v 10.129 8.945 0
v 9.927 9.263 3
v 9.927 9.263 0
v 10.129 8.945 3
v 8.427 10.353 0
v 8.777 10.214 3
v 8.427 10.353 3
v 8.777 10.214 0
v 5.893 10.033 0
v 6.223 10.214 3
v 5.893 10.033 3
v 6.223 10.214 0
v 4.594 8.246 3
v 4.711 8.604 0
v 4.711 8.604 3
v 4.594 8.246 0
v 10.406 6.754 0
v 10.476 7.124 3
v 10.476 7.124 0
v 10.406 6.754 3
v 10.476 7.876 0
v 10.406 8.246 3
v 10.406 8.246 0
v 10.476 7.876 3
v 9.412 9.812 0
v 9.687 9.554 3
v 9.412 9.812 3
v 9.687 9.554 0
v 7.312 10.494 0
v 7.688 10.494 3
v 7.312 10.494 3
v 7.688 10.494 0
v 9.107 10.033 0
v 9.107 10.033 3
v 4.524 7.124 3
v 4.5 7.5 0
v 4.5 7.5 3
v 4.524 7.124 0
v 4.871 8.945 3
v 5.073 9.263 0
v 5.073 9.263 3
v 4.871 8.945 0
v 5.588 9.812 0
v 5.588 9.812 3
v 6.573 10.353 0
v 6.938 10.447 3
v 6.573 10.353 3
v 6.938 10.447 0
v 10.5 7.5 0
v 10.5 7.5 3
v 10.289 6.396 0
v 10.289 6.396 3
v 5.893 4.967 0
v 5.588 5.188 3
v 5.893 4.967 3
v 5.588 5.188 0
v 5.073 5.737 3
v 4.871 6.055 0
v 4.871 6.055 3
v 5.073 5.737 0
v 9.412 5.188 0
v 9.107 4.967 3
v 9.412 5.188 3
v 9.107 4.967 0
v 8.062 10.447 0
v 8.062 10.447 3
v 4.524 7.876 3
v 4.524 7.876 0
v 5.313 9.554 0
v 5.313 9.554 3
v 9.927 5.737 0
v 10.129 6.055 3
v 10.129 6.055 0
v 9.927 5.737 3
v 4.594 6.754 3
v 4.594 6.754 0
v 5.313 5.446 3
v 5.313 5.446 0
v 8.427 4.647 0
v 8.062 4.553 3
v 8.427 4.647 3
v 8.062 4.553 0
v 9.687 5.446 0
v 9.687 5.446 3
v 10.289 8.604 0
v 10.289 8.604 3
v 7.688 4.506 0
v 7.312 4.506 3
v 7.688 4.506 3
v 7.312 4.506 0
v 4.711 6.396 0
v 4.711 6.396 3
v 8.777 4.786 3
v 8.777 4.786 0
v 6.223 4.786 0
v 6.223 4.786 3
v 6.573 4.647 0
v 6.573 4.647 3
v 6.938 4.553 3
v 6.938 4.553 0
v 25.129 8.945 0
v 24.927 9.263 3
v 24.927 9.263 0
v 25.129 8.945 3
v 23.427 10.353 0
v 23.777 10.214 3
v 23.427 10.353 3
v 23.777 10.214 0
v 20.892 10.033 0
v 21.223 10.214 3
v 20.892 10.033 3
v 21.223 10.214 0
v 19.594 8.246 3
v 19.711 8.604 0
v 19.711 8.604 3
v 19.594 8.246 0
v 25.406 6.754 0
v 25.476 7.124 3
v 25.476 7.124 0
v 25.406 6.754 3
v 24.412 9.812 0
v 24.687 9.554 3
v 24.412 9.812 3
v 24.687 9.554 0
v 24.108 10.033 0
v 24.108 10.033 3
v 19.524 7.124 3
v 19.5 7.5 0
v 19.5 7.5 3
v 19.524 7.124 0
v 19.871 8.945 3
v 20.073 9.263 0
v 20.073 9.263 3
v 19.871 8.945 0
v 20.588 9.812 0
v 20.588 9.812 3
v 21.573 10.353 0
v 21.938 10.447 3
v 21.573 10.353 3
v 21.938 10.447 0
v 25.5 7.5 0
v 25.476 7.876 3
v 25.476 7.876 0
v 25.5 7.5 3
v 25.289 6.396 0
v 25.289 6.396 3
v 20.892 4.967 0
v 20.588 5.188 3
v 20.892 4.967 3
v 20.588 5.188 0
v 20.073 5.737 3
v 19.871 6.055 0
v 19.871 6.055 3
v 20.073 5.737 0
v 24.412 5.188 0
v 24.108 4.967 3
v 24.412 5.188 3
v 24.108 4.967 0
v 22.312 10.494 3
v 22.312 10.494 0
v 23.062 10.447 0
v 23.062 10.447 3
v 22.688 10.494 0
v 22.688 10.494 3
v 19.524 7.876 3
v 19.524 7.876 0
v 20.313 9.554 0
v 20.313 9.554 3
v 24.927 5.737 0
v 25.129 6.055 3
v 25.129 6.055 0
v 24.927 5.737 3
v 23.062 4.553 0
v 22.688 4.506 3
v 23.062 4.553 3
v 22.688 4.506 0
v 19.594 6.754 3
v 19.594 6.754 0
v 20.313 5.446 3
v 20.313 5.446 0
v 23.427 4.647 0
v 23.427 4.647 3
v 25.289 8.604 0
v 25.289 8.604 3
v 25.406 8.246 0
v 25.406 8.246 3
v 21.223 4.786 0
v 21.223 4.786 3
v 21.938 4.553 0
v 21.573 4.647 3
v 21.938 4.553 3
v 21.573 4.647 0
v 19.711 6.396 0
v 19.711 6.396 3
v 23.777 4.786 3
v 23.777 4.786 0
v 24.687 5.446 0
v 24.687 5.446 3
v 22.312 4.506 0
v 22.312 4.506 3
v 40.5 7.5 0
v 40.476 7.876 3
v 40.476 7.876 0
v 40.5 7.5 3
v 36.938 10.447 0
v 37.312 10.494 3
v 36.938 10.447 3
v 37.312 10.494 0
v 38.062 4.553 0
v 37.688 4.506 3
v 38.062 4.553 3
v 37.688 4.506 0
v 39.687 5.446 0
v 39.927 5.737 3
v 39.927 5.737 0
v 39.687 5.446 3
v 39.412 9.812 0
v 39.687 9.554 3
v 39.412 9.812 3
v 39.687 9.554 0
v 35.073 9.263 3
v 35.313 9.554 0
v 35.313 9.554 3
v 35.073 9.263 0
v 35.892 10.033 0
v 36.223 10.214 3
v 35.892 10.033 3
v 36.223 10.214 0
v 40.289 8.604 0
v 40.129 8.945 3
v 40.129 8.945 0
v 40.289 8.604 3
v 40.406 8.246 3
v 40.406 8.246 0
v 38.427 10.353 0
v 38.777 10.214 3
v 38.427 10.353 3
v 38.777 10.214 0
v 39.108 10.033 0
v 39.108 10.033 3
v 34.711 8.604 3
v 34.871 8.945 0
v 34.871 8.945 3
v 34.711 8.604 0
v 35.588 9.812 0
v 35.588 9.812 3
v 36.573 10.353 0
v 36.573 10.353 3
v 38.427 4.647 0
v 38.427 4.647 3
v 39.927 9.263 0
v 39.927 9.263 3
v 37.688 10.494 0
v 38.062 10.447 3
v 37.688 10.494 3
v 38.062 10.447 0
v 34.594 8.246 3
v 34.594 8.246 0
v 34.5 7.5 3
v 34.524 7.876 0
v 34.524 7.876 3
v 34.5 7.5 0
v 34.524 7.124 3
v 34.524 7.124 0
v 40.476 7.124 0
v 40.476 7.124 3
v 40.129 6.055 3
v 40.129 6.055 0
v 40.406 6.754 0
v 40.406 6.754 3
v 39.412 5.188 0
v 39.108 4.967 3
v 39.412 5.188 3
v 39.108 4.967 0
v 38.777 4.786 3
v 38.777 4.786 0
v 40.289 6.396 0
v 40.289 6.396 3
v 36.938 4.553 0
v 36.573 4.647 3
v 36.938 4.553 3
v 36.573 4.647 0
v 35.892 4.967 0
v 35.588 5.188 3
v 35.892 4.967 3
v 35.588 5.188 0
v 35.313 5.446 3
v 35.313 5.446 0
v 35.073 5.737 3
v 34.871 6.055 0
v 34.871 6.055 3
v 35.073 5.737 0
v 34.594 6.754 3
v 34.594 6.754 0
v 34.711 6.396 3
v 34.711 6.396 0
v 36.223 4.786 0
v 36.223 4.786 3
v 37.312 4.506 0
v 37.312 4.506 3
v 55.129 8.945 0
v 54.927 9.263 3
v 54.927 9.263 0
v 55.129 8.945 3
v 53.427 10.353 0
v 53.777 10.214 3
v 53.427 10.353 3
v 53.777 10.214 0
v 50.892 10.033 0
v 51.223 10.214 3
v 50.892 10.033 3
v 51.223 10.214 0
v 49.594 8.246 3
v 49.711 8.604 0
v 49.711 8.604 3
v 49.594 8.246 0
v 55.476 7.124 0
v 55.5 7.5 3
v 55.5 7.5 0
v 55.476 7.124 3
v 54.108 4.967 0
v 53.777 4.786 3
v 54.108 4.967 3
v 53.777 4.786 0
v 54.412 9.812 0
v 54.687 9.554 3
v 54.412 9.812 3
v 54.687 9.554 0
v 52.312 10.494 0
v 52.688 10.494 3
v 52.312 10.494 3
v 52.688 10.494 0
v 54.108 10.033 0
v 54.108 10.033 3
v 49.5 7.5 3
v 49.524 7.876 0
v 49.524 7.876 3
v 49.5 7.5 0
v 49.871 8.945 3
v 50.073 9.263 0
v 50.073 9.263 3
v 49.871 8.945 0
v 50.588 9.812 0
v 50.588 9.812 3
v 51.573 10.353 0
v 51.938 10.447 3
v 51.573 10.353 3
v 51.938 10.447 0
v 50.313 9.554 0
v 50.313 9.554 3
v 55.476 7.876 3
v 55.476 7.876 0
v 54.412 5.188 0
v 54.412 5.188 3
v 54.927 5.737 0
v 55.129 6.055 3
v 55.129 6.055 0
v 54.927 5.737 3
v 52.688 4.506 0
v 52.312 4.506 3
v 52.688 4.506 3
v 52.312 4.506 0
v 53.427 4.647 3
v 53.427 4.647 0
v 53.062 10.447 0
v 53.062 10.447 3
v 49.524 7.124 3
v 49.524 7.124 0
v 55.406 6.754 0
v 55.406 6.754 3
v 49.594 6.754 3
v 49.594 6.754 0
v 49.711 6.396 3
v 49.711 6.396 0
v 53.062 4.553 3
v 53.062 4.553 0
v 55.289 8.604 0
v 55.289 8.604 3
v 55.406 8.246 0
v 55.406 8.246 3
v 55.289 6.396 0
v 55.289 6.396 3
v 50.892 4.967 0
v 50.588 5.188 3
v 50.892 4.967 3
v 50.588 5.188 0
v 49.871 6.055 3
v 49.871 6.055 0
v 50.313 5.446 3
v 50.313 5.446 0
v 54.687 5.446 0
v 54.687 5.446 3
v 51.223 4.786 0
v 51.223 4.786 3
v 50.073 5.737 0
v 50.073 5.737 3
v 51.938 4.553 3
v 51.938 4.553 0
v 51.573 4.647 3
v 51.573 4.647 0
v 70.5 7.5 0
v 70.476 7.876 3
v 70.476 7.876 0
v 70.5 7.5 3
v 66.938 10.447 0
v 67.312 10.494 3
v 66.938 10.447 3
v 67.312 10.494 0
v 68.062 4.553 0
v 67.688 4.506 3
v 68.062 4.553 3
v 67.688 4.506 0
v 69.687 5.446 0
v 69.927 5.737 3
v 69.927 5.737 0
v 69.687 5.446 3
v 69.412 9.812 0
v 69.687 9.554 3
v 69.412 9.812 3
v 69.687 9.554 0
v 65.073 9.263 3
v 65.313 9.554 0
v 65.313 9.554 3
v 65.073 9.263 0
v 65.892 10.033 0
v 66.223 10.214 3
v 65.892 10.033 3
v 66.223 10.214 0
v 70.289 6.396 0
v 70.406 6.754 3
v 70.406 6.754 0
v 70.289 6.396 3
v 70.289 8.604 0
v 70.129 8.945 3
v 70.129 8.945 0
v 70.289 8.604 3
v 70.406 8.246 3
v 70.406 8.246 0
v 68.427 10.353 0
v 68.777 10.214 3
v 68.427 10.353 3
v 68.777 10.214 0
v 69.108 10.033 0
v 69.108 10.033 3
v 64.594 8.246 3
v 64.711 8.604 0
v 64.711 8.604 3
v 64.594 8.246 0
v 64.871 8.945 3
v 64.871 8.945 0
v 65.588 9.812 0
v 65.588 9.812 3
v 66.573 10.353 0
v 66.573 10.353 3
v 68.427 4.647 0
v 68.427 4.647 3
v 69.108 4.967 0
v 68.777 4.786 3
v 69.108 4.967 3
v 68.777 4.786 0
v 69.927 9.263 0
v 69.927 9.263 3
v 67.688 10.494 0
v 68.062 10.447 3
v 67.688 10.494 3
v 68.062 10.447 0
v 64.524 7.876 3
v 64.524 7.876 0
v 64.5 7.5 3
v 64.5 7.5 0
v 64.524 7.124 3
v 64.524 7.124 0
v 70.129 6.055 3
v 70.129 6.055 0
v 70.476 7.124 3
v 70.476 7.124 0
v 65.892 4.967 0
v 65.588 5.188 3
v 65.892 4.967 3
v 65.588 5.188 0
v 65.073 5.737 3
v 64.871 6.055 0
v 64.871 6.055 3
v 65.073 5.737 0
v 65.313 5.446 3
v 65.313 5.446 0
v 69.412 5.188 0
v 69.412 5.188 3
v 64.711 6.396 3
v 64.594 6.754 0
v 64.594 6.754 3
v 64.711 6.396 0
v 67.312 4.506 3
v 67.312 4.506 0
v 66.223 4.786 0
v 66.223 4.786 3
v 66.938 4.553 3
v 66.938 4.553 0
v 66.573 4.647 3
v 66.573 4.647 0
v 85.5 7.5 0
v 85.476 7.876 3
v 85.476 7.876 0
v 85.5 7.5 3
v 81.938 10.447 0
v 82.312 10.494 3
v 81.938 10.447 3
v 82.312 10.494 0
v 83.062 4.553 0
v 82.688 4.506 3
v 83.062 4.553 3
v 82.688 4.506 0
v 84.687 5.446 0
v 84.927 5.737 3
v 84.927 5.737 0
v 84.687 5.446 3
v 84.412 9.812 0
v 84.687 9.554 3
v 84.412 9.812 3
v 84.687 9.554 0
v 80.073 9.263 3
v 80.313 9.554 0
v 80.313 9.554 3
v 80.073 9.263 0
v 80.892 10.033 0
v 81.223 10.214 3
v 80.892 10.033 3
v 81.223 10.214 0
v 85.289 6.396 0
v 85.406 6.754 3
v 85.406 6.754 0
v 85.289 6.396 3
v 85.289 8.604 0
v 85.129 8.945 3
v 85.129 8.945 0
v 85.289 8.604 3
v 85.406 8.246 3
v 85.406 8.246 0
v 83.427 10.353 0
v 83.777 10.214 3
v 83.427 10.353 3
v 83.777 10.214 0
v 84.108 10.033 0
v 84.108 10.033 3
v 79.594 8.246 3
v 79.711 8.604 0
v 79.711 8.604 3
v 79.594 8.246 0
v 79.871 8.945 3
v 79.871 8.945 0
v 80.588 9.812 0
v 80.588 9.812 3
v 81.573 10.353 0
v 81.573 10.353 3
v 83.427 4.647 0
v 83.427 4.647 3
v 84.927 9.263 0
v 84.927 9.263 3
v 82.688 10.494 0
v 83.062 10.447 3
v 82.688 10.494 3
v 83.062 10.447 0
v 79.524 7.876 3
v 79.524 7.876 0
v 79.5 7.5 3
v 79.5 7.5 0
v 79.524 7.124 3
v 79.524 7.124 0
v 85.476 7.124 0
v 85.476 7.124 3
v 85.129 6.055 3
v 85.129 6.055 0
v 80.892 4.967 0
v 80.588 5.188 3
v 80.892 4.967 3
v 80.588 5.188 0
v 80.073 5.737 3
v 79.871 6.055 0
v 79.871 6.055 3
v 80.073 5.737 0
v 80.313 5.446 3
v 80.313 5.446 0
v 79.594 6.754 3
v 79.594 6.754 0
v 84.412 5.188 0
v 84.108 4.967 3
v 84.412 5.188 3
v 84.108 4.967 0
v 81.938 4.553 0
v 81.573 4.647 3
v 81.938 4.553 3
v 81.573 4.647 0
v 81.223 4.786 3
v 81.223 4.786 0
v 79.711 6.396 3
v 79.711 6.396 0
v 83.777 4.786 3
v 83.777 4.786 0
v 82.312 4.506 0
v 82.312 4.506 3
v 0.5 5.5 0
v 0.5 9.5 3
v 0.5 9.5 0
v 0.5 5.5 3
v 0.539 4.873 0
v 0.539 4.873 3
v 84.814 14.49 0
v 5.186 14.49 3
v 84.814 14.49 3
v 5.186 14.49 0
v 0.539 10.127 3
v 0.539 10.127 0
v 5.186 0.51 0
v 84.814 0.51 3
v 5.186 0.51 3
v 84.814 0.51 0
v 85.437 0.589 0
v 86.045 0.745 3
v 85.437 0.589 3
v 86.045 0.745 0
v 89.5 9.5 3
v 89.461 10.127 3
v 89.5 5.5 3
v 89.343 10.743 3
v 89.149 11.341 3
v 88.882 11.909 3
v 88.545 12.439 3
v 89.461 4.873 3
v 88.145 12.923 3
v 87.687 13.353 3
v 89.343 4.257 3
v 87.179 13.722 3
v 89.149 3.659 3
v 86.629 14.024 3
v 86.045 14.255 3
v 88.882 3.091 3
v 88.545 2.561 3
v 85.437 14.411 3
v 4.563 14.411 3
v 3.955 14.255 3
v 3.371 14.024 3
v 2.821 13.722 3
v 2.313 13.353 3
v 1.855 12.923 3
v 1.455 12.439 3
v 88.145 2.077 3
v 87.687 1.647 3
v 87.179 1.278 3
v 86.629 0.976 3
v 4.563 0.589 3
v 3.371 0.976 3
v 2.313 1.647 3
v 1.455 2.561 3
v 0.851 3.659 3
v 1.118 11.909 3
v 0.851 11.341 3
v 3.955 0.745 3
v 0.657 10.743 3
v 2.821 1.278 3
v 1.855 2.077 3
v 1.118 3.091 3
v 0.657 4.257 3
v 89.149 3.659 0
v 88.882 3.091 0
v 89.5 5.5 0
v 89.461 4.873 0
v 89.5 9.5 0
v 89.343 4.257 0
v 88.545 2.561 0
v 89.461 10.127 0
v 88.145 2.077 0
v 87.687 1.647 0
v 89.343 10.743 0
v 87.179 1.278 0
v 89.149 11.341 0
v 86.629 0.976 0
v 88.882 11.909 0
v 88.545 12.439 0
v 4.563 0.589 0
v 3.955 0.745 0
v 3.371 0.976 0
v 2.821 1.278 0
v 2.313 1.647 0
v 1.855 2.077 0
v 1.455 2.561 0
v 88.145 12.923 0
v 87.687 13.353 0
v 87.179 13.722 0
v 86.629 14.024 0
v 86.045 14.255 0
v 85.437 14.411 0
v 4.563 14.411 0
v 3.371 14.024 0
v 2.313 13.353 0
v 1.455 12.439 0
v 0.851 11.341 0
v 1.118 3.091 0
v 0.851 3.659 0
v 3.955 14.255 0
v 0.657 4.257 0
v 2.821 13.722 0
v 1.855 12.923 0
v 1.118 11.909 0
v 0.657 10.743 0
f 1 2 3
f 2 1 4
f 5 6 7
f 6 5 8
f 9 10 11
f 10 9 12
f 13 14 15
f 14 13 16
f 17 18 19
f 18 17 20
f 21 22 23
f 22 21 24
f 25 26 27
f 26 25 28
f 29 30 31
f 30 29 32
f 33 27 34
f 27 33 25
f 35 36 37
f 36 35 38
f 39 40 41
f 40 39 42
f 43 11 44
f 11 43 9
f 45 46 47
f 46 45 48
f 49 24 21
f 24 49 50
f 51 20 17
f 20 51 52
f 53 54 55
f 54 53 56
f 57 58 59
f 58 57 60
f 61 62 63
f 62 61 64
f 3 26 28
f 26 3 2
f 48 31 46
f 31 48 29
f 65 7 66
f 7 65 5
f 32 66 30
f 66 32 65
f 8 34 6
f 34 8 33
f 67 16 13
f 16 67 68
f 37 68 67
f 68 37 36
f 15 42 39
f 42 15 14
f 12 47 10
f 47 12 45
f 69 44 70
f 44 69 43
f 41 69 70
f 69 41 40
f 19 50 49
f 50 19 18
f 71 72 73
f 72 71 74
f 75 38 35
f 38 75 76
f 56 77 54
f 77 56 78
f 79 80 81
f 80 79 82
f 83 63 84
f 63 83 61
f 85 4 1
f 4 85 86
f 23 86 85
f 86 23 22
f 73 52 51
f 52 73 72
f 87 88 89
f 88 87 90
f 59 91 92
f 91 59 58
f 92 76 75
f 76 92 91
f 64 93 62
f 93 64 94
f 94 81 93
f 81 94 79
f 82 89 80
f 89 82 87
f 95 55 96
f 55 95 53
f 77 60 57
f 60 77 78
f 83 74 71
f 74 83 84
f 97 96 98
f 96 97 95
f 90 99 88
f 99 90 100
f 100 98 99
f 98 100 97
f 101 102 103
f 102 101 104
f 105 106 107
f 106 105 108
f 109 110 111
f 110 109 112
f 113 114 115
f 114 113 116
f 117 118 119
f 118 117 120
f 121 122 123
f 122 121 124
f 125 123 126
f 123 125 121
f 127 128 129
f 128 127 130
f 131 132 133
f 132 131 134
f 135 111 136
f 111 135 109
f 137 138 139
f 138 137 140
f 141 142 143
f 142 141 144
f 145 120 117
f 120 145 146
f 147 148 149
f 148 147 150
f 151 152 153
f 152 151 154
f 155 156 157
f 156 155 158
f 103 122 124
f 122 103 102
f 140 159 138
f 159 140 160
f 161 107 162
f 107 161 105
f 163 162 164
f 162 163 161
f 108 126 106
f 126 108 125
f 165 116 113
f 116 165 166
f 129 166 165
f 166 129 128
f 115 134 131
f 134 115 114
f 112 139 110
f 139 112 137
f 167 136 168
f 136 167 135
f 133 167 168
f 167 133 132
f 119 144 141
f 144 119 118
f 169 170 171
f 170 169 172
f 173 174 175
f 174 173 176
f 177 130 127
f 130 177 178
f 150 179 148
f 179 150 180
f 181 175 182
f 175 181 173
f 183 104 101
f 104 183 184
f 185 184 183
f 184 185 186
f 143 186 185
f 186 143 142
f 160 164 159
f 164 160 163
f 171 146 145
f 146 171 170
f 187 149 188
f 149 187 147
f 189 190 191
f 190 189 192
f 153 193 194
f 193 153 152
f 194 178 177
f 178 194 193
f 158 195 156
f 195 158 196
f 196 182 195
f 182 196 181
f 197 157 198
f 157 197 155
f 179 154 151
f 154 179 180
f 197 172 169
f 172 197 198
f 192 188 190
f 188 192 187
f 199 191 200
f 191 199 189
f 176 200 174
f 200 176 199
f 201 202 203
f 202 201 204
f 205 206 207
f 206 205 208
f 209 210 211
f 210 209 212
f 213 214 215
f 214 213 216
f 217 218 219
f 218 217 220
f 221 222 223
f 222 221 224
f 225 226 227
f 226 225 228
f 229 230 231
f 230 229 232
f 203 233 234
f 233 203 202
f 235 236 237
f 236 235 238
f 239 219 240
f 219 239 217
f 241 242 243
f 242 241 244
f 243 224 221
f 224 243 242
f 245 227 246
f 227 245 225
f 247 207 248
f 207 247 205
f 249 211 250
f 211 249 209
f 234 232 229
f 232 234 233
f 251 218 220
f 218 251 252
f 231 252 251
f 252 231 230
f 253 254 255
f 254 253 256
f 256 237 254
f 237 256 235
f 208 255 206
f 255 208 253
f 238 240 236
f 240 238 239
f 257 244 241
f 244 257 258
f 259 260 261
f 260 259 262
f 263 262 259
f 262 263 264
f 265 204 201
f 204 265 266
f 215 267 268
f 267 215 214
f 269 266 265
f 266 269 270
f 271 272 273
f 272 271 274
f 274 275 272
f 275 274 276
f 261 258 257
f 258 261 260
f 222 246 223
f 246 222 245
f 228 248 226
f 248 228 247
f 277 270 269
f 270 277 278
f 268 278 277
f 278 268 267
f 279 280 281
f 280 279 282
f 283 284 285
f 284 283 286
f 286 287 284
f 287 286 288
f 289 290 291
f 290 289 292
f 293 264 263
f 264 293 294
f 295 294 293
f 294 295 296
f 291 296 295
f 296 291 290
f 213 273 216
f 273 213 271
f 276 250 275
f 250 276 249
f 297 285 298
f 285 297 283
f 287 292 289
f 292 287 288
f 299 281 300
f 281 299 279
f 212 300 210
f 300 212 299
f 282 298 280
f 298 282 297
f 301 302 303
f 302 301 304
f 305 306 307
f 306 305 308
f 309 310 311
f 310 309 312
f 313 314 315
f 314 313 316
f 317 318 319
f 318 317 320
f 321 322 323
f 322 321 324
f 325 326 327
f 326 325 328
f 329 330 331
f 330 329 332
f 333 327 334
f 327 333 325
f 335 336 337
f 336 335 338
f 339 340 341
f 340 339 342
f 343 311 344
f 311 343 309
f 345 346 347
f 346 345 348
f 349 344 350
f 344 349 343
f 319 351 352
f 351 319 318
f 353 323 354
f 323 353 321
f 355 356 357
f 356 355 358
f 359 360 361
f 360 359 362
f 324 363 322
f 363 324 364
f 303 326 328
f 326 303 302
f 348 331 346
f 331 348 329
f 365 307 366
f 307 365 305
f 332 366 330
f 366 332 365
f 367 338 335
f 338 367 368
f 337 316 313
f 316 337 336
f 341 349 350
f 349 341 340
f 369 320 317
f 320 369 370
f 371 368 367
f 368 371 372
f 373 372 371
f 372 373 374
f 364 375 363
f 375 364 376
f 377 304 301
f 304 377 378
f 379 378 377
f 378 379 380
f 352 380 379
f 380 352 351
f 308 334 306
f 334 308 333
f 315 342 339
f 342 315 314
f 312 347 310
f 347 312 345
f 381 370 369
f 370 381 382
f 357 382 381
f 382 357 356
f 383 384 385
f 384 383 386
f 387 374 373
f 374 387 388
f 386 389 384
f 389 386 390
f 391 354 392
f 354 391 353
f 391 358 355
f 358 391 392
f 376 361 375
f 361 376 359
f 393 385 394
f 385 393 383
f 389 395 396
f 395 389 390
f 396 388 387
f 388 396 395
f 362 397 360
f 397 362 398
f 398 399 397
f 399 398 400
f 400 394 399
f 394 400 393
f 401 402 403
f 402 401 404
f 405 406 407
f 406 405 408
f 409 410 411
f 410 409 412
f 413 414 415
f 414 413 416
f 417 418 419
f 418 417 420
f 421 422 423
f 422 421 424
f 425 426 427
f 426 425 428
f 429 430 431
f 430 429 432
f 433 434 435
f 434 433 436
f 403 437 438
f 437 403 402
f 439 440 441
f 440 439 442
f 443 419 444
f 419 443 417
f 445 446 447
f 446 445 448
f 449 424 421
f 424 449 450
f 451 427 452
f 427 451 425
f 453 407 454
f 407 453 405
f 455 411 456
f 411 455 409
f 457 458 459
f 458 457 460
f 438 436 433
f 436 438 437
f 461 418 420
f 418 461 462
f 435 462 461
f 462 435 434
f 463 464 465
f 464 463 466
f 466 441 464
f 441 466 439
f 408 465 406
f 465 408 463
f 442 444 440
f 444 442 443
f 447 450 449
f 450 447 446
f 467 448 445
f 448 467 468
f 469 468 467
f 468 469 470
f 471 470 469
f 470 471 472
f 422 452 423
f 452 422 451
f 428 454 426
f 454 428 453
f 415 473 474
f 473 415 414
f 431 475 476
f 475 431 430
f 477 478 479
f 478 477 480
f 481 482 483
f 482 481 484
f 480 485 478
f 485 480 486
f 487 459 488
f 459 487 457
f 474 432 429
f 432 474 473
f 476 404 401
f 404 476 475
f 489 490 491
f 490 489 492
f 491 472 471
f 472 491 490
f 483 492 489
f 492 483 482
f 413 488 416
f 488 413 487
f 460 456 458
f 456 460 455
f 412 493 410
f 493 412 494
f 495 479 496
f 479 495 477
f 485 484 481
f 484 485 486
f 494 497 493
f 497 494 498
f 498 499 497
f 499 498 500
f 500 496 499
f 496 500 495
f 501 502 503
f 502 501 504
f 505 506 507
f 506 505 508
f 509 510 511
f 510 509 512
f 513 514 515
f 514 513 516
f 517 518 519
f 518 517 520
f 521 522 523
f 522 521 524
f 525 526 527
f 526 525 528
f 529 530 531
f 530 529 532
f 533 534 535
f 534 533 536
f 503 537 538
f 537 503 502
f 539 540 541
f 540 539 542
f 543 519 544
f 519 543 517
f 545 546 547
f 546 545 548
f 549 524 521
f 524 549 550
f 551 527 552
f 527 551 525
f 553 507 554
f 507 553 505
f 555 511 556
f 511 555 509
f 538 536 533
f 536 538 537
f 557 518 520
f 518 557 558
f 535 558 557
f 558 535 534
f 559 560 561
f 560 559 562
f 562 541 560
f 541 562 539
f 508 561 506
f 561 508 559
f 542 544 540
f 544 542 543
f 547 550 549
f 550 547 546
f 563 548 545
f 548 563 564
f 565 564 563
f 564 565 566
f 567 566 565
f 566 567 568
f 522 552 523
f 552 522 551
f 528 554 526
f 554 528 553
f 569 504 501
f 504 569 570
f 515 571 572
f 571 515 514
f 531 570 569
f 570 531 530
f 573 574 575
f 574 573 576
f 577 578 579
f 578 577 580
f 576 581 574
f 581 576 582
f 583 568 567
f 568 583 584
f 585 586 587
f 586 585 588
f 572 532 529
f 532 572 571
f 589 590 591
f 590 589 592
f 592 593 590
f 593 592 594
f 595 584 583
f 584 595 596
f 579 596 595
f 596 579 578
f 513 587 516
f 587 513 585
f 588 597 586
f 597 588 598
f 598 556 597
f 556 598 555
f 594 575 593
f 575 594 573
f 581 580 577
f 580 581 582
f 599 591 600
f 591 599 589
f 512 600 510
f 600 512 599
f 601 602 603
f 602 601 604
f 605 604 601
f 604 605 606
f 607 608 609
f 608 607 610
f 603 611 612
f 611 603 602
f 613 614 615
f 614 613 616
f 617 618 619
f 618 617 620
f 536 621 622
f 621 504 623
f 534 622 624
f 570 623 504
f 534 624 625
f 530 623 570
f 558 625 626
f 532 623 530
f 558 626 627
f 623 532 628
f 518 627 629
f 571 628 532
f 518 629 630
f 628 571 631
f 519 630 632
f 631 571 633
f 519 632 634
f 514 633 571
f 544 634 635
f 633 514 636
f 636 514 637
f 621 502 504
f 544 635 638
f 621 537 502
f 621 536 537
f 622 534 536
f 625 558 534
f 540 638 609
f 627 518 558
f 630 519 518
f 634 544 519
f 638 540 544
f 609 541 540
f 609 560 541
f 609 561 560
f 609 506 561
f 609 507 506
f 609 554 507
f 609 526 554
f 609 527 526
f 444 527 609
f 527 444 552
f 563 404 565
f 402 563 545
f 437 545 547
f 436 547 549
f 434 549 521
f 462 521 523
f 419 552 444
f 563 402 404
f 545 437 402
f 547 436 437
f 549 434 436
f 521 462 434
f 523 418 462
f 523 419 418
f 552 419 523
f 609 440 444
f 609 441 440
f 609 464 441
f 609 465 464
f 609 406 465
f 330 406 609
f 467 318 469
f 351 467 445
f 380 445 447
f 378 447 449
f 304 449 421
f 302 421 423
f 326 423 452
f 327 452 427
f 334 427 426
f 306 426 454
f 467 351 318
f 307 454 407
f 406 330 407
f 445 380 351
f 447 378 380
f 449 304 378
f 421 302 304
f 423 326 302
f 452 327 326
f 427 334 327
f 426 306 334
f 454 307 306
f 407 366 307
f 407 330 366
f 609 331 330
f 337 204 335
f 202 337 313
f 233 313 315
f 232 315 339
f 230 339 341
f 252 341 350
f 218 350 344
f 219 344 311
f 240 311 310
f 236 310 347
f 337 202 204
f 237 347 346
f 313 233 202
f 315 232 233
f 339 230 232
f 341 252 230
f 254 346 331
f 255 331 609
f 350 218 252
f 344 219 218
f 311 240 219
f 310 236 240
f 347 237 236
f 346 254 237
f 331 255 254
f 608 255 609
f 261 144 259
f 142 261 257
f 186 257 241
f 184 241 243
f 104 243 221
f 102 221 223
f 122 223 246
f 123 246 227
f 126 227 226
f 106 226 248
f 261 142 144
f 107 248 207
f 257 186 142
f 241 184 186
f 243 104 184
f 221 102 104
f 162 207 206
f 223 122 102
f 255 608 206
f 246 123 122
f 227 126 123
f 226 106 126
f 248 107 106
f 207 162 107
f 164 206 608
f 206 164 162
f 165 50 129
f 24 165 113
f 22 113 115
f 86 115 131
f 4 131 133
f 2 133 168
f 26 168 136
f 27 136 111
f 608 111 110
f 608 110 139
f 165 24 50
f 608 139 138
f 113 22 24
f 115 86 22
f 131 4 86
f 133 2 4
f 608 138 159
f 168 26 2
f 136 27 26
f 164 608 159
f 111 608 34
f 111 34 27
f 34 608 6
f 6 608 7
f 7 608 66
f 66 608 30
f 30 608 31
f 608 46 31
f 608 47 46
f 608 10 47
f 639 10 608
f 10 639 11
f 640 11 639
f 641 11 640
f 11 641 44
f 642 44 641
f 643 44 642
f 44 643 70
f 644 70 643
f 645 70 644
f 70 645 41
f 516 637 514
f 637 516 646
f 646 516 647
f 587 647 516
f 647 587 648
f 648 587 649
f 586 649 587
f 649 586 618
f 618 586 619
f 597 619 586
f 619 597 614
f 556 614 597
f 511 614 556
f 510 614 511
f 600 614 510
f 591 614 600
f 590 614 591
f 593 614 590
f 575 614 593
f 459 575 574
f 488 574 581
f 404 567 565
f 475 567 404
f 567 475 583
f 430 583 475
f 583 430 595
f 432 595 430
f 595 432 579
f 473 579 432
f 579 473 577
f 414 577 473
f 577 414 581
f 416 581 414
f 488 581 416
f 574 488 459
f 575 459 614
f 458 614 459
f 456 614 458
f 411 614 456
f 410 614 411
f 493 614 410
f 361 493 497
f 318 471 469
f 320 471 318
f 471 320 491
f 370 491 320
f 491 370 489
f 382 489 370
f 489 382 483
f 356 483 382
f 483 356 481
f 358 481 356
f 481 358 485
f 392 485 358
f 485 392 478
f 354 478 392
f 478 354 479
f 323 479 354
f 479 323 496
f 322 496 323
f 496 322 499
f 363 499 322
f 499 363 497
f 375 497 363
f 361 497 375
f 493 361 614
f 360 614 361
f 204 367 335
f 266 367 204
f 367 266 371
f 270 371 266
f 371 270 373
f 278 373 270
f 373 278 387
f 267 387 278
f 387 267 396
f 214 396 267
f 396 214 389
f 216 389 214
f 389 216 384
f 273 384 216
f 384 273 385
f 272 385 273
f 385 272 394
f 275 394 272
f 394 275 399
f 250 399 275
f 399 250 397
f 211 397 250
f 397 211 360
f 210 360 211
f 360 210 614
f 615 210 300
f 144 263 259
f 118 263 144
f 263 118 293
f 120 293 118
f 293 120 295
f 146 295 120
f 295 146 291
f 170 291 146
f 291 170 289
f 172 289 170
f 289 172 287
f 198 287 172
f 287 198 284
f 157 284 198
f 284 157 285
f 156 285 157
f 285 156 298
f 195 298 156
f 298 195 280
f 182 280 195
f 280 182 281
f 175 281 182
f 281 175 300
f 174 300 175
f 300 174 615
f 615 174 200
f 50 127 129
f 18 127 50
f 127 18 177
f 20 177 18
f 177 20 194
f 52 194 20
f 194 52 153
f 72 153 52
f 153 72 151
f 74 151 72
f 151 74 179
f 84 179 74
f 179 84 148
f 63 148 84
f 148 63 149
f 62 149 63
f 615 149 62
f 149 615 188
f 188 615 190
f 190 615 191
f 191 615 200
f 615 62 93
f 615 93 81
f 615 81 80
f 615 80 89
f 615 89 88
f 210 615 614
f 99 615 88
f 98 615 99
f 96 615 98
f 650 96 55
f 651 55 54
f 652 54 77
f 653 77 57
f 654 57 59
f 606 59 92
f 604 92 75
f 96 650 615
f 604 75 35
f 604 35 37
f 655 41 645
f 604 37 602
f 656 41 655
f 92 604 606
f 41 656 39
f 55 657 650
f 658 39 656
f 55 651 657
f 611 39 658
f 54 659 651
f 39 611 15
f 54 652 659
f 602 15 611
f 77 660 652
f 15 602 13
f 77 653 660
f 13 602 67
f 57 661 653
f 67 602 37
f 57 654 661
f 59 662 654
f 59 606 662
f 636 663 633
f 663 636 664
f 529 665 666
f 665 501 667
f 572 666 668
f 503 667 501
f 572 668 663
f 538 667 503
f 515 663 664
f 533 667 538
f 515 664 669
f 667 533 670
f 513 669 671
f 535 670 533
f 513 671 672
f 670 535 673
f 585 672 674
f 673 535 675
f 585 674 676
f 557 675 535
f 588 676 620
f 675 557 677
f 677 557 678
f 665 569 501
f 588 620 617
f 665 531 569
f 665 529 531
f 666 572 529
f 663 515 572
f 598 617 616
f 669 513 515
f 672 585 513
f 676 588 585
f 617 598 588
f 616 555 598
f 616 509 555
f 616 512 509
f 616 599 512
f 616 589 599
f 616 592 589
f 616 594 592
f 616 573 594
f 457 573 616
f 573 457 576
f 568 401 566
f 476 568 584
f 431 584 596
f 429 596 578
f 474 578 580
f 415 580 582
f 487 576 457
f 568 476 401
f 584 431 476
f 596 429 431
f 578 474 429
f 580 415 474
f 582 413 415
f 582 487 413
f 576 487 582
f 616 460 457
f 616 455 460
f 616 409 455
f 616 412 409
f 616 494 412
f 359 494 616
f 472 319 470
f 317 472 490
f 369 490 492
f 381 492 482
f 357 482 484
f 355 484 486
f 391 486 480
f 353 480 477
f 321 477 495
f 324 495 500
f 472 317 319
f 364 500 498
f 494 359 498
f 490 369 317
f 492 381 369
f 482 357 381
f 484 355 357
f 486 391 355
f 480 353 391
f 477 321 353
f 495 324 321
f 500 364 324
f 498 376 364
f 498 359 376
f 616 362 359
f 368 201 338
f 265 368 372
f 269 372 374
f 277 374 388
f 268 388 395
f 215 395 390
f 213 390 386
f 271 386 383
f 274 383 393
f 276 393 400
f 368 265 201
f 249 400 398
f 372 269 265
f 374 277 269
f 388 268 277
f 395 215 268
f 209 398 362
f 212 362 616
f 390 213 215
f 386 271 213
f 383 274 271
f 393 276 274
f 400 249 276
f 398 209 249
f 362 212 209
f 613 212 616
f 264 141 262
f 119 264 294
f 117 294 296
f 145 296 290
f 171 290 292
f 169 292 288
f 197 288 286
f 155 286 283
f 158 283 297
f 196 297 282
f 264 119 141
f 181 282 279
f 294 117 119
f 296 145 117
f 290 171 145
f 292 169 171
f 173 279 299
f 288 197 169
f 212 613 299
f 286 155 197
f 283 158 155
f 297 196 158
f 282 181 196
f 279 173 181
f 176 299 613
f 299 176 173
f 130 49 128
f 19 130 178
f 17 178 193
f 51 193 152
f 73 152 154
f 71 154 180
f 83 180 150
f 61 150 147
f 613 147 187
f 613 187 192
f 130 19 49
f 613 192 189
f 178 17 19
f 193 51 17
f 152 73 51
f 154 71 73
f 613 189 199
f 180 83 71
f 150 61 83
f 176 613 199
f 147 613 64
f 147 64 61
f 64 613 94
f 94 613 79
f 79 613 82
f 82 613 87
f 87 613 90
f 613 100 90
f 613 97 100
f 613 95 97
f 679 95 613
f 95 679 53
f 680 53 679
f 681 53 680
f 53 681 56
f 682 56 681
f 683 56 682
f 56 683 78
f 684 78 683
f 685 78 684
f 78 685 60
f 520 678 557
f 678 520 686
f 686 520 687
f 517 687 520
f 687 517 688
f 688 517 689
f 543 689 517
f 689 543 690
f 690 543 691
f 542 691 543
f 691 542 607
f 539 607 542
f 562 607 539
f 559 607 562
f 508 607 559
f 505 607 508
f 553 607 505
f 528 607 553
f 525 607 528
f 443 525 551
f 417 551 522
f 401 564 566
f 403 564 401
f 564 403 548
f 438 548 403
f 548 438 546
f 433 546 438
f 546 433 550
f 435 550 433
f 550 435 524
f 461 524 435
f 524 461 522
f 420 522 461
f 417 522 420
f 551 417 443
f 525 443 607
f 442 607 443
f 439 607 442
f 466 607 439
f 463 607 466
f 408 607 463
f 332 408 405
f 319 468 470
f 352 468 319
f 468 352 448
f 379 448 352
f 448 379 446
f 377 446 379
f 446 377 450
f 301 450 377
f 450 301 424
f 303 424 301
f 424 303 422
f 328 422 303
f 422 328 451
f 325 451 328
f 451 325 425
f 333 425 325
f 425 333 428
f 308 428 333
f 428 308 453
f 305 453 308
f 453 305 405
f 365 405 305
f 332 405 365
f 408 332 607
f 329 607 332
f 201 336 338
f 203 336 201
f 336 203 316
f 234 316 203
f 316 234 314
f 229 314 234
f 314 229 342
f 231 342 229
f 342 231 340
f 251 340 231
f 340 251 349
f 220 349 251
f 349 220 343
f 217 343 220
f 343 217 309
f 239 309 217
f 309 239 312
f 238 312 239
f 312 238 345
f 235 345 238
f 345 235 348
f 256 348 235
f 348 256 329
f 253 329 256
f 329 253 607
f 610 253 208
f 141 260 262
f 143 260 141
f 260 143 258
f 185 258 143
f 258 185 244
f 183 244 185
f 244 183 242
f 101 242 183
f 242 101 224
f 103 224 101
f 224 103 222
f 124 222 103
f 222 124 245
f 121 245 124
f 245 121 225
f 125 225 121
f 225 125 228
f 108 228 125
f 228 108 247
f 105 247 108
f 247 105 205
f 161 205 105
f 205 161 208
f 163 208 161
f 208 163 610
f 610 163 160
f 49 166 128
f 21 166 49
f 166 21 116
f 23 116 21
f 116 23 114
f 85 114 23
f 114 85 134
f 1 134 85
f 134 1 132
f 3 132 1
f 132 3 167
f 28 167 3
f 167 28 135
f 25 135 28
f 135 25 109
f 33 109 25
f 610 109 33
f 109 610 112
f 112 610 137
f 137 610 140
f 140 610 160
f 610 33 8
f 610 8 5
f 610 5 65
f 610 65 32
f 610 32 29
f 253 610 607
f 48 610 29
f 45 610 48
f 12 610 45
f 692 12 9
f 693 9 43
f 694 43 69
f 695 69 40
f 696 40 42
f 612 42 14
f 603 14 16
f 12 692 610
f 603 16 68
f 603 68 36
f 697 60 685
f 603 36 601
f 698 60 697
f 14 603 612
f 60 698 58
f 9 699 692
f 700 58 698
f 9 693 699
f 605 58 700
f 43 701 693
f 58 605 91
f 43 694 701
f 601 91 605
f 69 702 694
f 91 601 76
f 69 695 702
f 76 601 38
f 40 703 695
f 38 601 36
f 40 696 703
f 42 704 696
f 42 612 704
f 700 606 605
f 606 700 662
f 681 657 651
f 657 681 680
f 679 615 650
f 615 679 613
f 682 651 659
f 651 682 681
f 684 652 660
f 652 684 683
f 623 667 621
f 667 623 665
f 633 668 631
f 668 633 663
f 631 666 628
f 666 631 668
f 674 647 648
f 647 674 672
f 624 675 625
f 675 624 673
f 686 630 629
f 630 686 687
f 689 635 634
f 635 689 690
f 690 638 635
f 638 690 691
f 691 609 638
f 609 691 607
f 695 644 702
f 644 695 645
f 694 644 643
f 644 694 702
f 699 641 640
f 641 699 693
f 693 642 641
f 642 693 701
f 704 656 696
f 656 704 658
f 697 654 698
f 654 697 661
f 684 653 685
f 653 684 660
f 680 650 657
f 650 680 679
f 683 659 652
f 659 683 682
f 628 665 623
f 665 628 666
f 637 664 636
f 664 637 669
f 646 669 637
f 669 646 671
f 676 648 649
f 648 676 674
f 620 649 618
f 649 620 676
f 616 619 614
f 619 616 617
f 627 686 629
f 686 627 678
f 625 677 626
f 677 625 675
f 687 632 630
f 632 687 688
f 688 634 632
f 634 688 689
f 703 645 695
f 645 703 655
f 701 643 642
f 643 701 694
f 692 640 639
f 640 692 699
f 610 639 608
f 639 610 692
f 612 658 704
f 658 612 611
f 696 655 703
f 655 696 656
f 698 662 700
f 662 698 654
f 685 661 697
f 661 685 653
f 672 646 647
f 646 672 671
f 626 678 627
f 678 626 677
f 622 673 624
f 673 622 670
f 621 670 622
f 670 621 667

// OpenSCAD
// Generated by SolidPython 1.1.3 on 2023-01-09 15:11:18
$fn = 50;


difference() {
	union() {
		translate(v = [45.0000000000, 7.5000000000, 0]) {
			rotate(a = [0, 0, 0]) {
				hull() {
					translate(v = [-39.5000000000, 2.0000000000, 0]) {
						rotate(a = [0, 0, 0]) {
							translate(v = [0, 0, 0]) {
								rotate(a = [0, 0, 0]) {
									cylinder(h = 3, r = 5);
								}
							}
						}
					}
					translate(v = [39.5000000000, 2.0000000000, 0]) {
						rotate(a = [0, 0, 0]) {
							translate(v = [0, 0, 0]) {
								rotate(a = [0, 0, 0]) {
									cylinder(h = 3, r = 5);
								}
							}
						}
					}
					translate(v = [-39.5000000000, -2.0000000000, 0]) {
						rotate(a = [0, 0, 0]) {
							translate(v = [0, 0, 0]) {
								rotate(a = [0, 0, 0]) {
									cylinder(h = 3, r = 5);
								}
							}
						}
					}
					translate(v = [39.5000000000, -2.0000000000, 0]) {
						rotate(a = [0, 0, 0]) {
							translate(v = [0, 0, 0]) {
								rotate(a = [0, 0, 0]) {
									cylinder(h = 3, r = 5);
								}
							}
						}
					}
				}
			}
		}
	}
	union() {
		translate(v = [7.5000000000, 7.5000000000, 0]) {
			rotate(a = [0, 0, 0]) {
				translate(v = [0, 0, -50]) {
					rotate(a = [0, 0, 0]) {
						cylinder(h = 100, r = 3.0000000000);
					}
				}
			}
		}
		translate(v = [22.5000000000, 7.5000000000, 0]) {
			rotate(a = [0, 0, 0]) {
				translate(v = [0, 0, -50]) {
					rotate(a = [0, 0, 0]) {
						cylinder(h = 100, r = 3.0000000000);
					}
				}
			}
		}
		translate(v = [37.5000000000, 7.5000000000, 0]) {
			rotate(a = [0, 0, 0]) {
				translate(v = [0, 0, -50]) {
					rotate(a = [0, 0, 0]) {
						cylinder(h = 100, r = 3.0000000000);
					}
				}
			}
		}
		translate(v = [52.5000000000, 7.5000000000, 0]) {
			rotate(a = [0, 0, 0]) {
				translate(v = [0, 0, -50]) {
					rotate(a = [0, 0, 0]) {
						cylinder(h = 100, r = 3.0000000000);
					}
				}
			}
		}
		translate(v = [67.5000000000, 7.5000000000, 0]) {
			rotate(a = [0, 0, 0]) {
				translate(v = [0, 0, -50]) {
					rotate(a = [0, 0, 0]) {
						cylinder(h = 100, r = 3.0000000000);
					}
				}
			}
		}
		translate(v = [82.5000000000, 7.5000000000, 0]) {
			rotate(a = [0, 0, 0]) {
				translate(v = [0, 0, -50]) {
					rotate(a = [0, 0, 0]) {
						cylinder(h = 100, r = 3.0000000000);
					}
				}
			}
		}
	}
}
/***********************************************
*********      SolidPython code:      **********
************************************************
 
from solid import *
import os
import subprocess

import oomB

import opsc_library_gen

mode = "laser"
#mode = "3d_print"

defined_objects = {}

radius_dict = {}
countersunk_dict = {}


def set_mode(m):
    global mode
    mode = m
    radius_dict['M6'] = 6.5/2
    radius_dict['M3'] = 3.3/2
    if mode == "laser":
        radius_dict['M6'] = 6/2
        radius_dict['M3'] = 3/2

    countersunk_dict['M3'] = {}
    countersunk_dict['M3']['little_rad'] = radius_dict['M3']
    countersunk_dict['M3']['big_rad'] = (5.5+0.6)/2
    if mode == "laser":
        countersunk_dict['M3']['big_rad'] = (4.75+0.6)/2
        countersunk_dict['M3']['little_rad'] = (4.75+0.6)/2

    countersunk_dict['M3']['height'] = 1.7


def opsc_make_object(filename, objects, save_type="none",resolution=50, layers = 1, tilediff = 200, mode="laser"):
    set_mode(mode)
    save_type = save_type.lower()
    os.makedirs(os.path.dirname(filename), exist_ok=True)
    final_object = opsc_get_object(objects)
    # Save the final object to the specified filename    
    scad_render_to_file(final_object, filename, file_header='$fn = %s;' % resolution, include_orig_code=True)
    if mode == "laser":
        filename_laser = filename.replace(".scad","-flat.scad")
        scad_render_to_file(getLaser(final_object, layers=layers, tilediff=tilediff), filename_laser, file_header='$fn = %s;' % resolution, include_orig_code=True)
        if save_type == "all":
            saveToAll(filename_laser)
        elif save_type == "dxf":
            saveToDxf(filename_laser)
    if save_type == "all":
        saveToAll(filename)
    elif save_type == "dxf":
        saveToDxf(filename)


def opsc_get_object(objects):
    # Create the solidpython objects
    positive_objects = [get_opsc_item(obj) for obj in objects if obj['type'] == 'positive']
    negative_objects = [get_opsc_item(obj) for obj in objects if obj['type'] == 'negative']
    # Union the positive objects
    positive_object = union()(*positive_objects)
    # Union the negative objects
    negative_object = union()(*negative_objects)
    # Create the final object by subtracting the negative objects from the positive objects
    return difference()(positive_object, negative_object)

def get_opsc_item(params):
    # A dictionary to map radius string values to numerical values
    #radius_dict = {'small': 5, 'medium': 10, 'large': 15}
    # An array of function names for basic shapes
    basic_shapes = ['cube', 'sphere', 'cylinder']
    
    # An array of function names for other shapes
    other_shapes = ['hole', 'slot', 'rounded_rectangle', 'countersunk']
    


    # Convert radius to r if present, and remove radius from the params dictionary
    if 'radius' in params:
        if isinstance(params['radius'], str):
            # Use the radius_dict to map the radius string value to a numerical value
            params['r'] = radius_dict[params['radius']]
        else:
            params['r'] = params['radius']
        del params['radius']
    

    # Check if the object type is a basic shape
    if params['shape'] in basic_shapes:
        # Remove shape and unexpected dictionary values
        allowed_keys = {'size', 'r', 'r1', 'r2', 'd', 'h', 'rw', 'rh', 'dw', 'dh'}
        shape_params = {k: v for k, v in params.items() if k in allowed_keys}

        # Call the corresponding function for the shape parameter, using ** notation to pass the shape_params dictionary as keyword arguments
        return get_opsc_transform(params,globals()[params['shape']](**shape_params))
    
    # If the object type is not a basic shape, check if it's a defined object or one of the other shapes
    elif params['shape'] in other_shapes:
        # Call the corresponding function for the shape parameter, passing the params dictionary as an argument
        p2 = copy.deepcopy(params)
        p2["pos"] = [0,0,0]
        return get_opsc_transform(params,globals()[params['shape']](p2))
    
    # If the object is not a basic shape or a defined object, try to import it from a .scad file
    else:
        obj = defined_objects[params['shape']]
        return get_opsc_transform(params,obj)

def get_opsc_transform(params, solid_obj):
    # Rotate the object based on the 'rot' field in the params dictionary, or the 'rotX', 'rotY', and 'rotZ' fields if 'rot' is not present
    rot = params.get('rot', [])
    if rot:
        rotX, rotY, rotZ = rot
    else:
        rotX = params.get('rotX', 0)
        rotY = params.get('rotY', 0)
        rotZ = params.get('rotZ', 0)
    solid_obj = rotate([rotX, rotY, rotZ])(solid_obj)

    # Translate the object based on the 'pos' field in the params dictionary, or the 'x', 'y', and 'z' fields if 'pos' is not present
    pos = params.get('pos', [])
    if pos:
        x, y, z = pos
    else:
        x = params.get('x', 0)
        y = params.get('y', 0)
        z = params.get('z', 0)
    solid_obj = translate([x, y, z])(solid_obj)
    return solid_obj


import random

def opsc_easy_array(type, shape, repeats, pos_start, shift_arr, **kwargs):
    for i in range(0,3):
        repeats.append(1)
        pos_start.append(0)
        shift_arr.append(0)
    return_objects = []

    for x in range(0,repeats[0]):
        for y in range(0,repeats[1]):
            for z in range(0,repeats[2]):
                return_objects.append(opsc_easy(type, shape, pos=[pos_start[0]+x*shift_arr[0],pos_start[1]+y*shift_arr[1],pos_start[2]+z*shift_arr[2]], **kwargs))
    return return_objects                



def opsc_easy(type, shape, **kwargs):
    obj = {
        'type': type,
        'shape': shape
    }
    for param in ['size', 'r', 'r1', 'r2', 'd', 'h', 'rw', 'rh', 'dw', 'dh', 'pos', 'x', 'y', 'z', 'rot', 'rotX', 'rotY', 'rotZ', "w"]:
        if param in kwargs:
            obj[param] = kwargs[param]
    return obj

def hole(params):
    p2 = copy.deepcopy(params)  
    # Check if the radius is a string and replace it with the corresponding value from the dictionary
    if isinstance(p2['r'], str):
        p2['r'] = radius_dict[p2['r']]
    
    # Set the height to 100 if not specified
    if 'h' not in p2:
        p2['h'] = 100
        p2["pos"] = [0,0,-50]
    p2["center"] = True
    # Create the cylinder object
    p2["shape"] = "cylinder"
    p2["type"] = "positive"

    return get_opsc_item(p2)

import copy

def countersunk(params):
    p2 = copy.deepcopy(params)
    counter_rad = p2['r']
    p2['r'] = radius_dict[p2['r']]
    hp = copy.deepcopy(p2)
    hp["type"] = "positive"
    hp["shape"] = "hole"
    del hp["rot"]
    hol = get_opsc_item(hp)
    
    cp = copy.deepcopy(p2)
    cp["h"] = countersunk_dict[counter_rad]["height"]
    cp["r2"] = countersunk_dict[counter_rad]["little_rad"]
    cp["r1"] = countersunk_dict[counter_rad]["big_rad"]
    del cp["r"]
    del cp["rot"]
    cp["type"] = "positive"
    cp["shape"] = "cylinder"
    cp["pos"] = [0,0,0]

    top = get_opsc_item(cp)
    return union()(hol,top)



def slot(params):  
    p2 = copy.deepcopy(params) 
    if isinstance(p2['r'], str):
        p2['r'] = radius_dict[p2['r']]
    p2["type"] = "positive"
    p2["shape"] = "hole"
    del p2["rot"]
    p2["pos"] = [0,0,0]
    left = copy.deepcopy(p2)
    right = copy.deepcopy(p2)
    left["pos"][0] = p2["w"] / 2 - p2["r"] 
    
    right["pos"][0] = -p2["w"] / 2 + p2["r"] 
    pass
    leftObj = get_opsc_item(left)
    rightObj = get_opsc_item(right)
    return hull()(leftObj, rightObj)

def rounded_rectangle(params):   
    p2 = copy.deepcopy(params) 
    p2["h"] = p2["size"][2]
    p2["pos"] = p2.get("pos", [0, 0, 0]) 
    p2["type"] = "positive"
    p2["shape"] = "hole"
    p2["pos"] = [0,0,0]
    
    if 'rot' in p2:
        del p2["rot"]   
    if 'r' not in p2:
        p2["r"] = 5 
    tl = copy.deepcopy(p2)
    tr = copy.deepcopy(p2)
    bl = copy.deepcopy(p2)
    br = copy.deepcopy(p2)
    tl["pos"][0] = -(p2["size"][0] - p2["r"]*2)/2
    tl["pos"][1] = (p2["size"][1] - p2["r"]*2)/2
    tr["pos"][0] = (p2["size"][0] - p2["r"]*2)/2
    tr["pos"][1] = (p2["size"][1] - p2["r"]*2)/2
    bl["pos"][0] = -(p2["size"][0] - p2["r"]*2)/2
    bl["pos"][1] = -(p2["size"][1] - p2["r"]*2)/2
    br["pos"][0] = (p2["size"][0] - p2["r"]*2)/2
    br["pos"][1] = -(p2["size"][1] - p2["r"]*2)/2
    del tl["size"]
    del tr["size"]
    del bl["size"]
    del br["size"]
    tlo = get_opsc_item(tl)
    tro = get_opsc_item(tr)
    blo = get_opsc_item(bl)
    bro = get_opsc_item(br)    
    return hull()(tlo, tro, blo, bro)



def import_scad_object(filename):
    # Import the .scad file and convert it to a solidpython object
    #filename = "parts"
    obj = import_scad(filename)
    return obj.main()
    


import os
import solid as solidpython

# A dictionary to store the defined objects


def load_scad_objects():
    opsc_library_gen.gen_library(defined_objects)

import random

def test(num_objects):
    objects = []
    for i in range(num_objects):
        # Choose a random shape
        #shape = random.choice(['cube', 'sphere', 'cylinder', 'hole', 'slot', "rounded_rectangle"])
        shape = random.choice(["rounded_rectangle"])

        # Choose a random type
        type = random.choice(['positive', 'negative'])
        
        # Create an empty object dictionary
        obj = {'shape': shape, 'type': type}
        
        # Set shape-specific parameters
        if obj['shape'] in ['cube']:
            obj['size'] =  [random.uniform(5, 15), random.uniform(5, 15), random.uniform(5, 15)]
        if obj['shape'] in ['rounded_rectangle']:
            obj['size'] =  [random.uniform(5, 15), random.uniform(5, 15), random.uniform(5, 15)]
            obj['r'] = random.uniform(0.5, 5)
        elif obj['shape'] == 'sphere':
            obj['r'] = random.uniform(5, 15)
        elif obj['shape'] in ['cylinder', 'hole']:
            obj['r'] = random.uniform(0.5, 5)
            obj['h'] = random.uniform(5, 15)
        elif obj['shape'] == 'slot':
            obj['r'] = random.uniform(0.5, 5)
            obj['h'] = random.uniform(5, 15)
            obj['w'] = random.uniform(5, 15)
        
        # Set a random position and rotation
        obj['pos'] = [random.uniform(-20, 20), random.uniform(-20, 20), random.uniform(-20, 20)]
        obj['rot'] = [random.uniform(-180, 180), random.uniform(-180, 180), random.uniform(-180, 180)]
        
        # Add the object to the list
        objects.append(obj)
    return objects

####### old file saving
def saveToAll(fileIn):
    saveToDxf(fileIn)
    saveToPng(fileIn)
    saveToStl(fileIn)
    saveToSvg(fileIn)

def saveToDxf(fileIn, fileOut="", copy_to_laser=True):
    if fileOut == "":
        fileOut = fileIn.replace(".scad",".dxf")
    saveToFile(fileIn, fileOut)


    
def saveToPng(fileIn, fileOut="",extra="--render"):
    if fileOut == "":
        fileOut = fileIn.replace(".scad",".png")
    saveToFile(fileIn, fileOut)

def saveToStl(fileIn, fileOut=""):
    if fileOut == "":
        fileOut = fileIn.replace(".scad",".stl")
    saveToFile(fileIn, fileOut)
    
def saveToSvg(fileIn, fileOut=""):
    if fileOut == "":
        fileOut = fileIn.replace(".scad",".svg")
    saveToFile(fileIn, fileOut)

def saveToFile(fileIn, fileOut,extra=""):
    #extra = extra + " --colorscheme Tomorrow"

    launchStr = 'openscad -o "' + fileOut + '"' + extra + ' "' + fileIn + '"'
    if ".png" in fileOut:
        launchStr = launchStr + " --render"
    print("            saveToFile launch string: " + launchStr)
    subprocess.run(launchStr)
    x=0

def getLaser(final_object,start=1.5,layers=1,thickness=3,tilediff=200):
        rv= []

        for x in range(layers):
            rv.append(translate([0,x*tilediff,0])(
                    projection()(
                        intersection()(translate([-500,-500,start+x*thickness])(cube(size=[1000,1000,0.1])),
                            final_object
                        )
                    )
            )
            )
            
        return union()(rv)

set_mode("laser")
load_scad_objects() 
 
************************************************/
